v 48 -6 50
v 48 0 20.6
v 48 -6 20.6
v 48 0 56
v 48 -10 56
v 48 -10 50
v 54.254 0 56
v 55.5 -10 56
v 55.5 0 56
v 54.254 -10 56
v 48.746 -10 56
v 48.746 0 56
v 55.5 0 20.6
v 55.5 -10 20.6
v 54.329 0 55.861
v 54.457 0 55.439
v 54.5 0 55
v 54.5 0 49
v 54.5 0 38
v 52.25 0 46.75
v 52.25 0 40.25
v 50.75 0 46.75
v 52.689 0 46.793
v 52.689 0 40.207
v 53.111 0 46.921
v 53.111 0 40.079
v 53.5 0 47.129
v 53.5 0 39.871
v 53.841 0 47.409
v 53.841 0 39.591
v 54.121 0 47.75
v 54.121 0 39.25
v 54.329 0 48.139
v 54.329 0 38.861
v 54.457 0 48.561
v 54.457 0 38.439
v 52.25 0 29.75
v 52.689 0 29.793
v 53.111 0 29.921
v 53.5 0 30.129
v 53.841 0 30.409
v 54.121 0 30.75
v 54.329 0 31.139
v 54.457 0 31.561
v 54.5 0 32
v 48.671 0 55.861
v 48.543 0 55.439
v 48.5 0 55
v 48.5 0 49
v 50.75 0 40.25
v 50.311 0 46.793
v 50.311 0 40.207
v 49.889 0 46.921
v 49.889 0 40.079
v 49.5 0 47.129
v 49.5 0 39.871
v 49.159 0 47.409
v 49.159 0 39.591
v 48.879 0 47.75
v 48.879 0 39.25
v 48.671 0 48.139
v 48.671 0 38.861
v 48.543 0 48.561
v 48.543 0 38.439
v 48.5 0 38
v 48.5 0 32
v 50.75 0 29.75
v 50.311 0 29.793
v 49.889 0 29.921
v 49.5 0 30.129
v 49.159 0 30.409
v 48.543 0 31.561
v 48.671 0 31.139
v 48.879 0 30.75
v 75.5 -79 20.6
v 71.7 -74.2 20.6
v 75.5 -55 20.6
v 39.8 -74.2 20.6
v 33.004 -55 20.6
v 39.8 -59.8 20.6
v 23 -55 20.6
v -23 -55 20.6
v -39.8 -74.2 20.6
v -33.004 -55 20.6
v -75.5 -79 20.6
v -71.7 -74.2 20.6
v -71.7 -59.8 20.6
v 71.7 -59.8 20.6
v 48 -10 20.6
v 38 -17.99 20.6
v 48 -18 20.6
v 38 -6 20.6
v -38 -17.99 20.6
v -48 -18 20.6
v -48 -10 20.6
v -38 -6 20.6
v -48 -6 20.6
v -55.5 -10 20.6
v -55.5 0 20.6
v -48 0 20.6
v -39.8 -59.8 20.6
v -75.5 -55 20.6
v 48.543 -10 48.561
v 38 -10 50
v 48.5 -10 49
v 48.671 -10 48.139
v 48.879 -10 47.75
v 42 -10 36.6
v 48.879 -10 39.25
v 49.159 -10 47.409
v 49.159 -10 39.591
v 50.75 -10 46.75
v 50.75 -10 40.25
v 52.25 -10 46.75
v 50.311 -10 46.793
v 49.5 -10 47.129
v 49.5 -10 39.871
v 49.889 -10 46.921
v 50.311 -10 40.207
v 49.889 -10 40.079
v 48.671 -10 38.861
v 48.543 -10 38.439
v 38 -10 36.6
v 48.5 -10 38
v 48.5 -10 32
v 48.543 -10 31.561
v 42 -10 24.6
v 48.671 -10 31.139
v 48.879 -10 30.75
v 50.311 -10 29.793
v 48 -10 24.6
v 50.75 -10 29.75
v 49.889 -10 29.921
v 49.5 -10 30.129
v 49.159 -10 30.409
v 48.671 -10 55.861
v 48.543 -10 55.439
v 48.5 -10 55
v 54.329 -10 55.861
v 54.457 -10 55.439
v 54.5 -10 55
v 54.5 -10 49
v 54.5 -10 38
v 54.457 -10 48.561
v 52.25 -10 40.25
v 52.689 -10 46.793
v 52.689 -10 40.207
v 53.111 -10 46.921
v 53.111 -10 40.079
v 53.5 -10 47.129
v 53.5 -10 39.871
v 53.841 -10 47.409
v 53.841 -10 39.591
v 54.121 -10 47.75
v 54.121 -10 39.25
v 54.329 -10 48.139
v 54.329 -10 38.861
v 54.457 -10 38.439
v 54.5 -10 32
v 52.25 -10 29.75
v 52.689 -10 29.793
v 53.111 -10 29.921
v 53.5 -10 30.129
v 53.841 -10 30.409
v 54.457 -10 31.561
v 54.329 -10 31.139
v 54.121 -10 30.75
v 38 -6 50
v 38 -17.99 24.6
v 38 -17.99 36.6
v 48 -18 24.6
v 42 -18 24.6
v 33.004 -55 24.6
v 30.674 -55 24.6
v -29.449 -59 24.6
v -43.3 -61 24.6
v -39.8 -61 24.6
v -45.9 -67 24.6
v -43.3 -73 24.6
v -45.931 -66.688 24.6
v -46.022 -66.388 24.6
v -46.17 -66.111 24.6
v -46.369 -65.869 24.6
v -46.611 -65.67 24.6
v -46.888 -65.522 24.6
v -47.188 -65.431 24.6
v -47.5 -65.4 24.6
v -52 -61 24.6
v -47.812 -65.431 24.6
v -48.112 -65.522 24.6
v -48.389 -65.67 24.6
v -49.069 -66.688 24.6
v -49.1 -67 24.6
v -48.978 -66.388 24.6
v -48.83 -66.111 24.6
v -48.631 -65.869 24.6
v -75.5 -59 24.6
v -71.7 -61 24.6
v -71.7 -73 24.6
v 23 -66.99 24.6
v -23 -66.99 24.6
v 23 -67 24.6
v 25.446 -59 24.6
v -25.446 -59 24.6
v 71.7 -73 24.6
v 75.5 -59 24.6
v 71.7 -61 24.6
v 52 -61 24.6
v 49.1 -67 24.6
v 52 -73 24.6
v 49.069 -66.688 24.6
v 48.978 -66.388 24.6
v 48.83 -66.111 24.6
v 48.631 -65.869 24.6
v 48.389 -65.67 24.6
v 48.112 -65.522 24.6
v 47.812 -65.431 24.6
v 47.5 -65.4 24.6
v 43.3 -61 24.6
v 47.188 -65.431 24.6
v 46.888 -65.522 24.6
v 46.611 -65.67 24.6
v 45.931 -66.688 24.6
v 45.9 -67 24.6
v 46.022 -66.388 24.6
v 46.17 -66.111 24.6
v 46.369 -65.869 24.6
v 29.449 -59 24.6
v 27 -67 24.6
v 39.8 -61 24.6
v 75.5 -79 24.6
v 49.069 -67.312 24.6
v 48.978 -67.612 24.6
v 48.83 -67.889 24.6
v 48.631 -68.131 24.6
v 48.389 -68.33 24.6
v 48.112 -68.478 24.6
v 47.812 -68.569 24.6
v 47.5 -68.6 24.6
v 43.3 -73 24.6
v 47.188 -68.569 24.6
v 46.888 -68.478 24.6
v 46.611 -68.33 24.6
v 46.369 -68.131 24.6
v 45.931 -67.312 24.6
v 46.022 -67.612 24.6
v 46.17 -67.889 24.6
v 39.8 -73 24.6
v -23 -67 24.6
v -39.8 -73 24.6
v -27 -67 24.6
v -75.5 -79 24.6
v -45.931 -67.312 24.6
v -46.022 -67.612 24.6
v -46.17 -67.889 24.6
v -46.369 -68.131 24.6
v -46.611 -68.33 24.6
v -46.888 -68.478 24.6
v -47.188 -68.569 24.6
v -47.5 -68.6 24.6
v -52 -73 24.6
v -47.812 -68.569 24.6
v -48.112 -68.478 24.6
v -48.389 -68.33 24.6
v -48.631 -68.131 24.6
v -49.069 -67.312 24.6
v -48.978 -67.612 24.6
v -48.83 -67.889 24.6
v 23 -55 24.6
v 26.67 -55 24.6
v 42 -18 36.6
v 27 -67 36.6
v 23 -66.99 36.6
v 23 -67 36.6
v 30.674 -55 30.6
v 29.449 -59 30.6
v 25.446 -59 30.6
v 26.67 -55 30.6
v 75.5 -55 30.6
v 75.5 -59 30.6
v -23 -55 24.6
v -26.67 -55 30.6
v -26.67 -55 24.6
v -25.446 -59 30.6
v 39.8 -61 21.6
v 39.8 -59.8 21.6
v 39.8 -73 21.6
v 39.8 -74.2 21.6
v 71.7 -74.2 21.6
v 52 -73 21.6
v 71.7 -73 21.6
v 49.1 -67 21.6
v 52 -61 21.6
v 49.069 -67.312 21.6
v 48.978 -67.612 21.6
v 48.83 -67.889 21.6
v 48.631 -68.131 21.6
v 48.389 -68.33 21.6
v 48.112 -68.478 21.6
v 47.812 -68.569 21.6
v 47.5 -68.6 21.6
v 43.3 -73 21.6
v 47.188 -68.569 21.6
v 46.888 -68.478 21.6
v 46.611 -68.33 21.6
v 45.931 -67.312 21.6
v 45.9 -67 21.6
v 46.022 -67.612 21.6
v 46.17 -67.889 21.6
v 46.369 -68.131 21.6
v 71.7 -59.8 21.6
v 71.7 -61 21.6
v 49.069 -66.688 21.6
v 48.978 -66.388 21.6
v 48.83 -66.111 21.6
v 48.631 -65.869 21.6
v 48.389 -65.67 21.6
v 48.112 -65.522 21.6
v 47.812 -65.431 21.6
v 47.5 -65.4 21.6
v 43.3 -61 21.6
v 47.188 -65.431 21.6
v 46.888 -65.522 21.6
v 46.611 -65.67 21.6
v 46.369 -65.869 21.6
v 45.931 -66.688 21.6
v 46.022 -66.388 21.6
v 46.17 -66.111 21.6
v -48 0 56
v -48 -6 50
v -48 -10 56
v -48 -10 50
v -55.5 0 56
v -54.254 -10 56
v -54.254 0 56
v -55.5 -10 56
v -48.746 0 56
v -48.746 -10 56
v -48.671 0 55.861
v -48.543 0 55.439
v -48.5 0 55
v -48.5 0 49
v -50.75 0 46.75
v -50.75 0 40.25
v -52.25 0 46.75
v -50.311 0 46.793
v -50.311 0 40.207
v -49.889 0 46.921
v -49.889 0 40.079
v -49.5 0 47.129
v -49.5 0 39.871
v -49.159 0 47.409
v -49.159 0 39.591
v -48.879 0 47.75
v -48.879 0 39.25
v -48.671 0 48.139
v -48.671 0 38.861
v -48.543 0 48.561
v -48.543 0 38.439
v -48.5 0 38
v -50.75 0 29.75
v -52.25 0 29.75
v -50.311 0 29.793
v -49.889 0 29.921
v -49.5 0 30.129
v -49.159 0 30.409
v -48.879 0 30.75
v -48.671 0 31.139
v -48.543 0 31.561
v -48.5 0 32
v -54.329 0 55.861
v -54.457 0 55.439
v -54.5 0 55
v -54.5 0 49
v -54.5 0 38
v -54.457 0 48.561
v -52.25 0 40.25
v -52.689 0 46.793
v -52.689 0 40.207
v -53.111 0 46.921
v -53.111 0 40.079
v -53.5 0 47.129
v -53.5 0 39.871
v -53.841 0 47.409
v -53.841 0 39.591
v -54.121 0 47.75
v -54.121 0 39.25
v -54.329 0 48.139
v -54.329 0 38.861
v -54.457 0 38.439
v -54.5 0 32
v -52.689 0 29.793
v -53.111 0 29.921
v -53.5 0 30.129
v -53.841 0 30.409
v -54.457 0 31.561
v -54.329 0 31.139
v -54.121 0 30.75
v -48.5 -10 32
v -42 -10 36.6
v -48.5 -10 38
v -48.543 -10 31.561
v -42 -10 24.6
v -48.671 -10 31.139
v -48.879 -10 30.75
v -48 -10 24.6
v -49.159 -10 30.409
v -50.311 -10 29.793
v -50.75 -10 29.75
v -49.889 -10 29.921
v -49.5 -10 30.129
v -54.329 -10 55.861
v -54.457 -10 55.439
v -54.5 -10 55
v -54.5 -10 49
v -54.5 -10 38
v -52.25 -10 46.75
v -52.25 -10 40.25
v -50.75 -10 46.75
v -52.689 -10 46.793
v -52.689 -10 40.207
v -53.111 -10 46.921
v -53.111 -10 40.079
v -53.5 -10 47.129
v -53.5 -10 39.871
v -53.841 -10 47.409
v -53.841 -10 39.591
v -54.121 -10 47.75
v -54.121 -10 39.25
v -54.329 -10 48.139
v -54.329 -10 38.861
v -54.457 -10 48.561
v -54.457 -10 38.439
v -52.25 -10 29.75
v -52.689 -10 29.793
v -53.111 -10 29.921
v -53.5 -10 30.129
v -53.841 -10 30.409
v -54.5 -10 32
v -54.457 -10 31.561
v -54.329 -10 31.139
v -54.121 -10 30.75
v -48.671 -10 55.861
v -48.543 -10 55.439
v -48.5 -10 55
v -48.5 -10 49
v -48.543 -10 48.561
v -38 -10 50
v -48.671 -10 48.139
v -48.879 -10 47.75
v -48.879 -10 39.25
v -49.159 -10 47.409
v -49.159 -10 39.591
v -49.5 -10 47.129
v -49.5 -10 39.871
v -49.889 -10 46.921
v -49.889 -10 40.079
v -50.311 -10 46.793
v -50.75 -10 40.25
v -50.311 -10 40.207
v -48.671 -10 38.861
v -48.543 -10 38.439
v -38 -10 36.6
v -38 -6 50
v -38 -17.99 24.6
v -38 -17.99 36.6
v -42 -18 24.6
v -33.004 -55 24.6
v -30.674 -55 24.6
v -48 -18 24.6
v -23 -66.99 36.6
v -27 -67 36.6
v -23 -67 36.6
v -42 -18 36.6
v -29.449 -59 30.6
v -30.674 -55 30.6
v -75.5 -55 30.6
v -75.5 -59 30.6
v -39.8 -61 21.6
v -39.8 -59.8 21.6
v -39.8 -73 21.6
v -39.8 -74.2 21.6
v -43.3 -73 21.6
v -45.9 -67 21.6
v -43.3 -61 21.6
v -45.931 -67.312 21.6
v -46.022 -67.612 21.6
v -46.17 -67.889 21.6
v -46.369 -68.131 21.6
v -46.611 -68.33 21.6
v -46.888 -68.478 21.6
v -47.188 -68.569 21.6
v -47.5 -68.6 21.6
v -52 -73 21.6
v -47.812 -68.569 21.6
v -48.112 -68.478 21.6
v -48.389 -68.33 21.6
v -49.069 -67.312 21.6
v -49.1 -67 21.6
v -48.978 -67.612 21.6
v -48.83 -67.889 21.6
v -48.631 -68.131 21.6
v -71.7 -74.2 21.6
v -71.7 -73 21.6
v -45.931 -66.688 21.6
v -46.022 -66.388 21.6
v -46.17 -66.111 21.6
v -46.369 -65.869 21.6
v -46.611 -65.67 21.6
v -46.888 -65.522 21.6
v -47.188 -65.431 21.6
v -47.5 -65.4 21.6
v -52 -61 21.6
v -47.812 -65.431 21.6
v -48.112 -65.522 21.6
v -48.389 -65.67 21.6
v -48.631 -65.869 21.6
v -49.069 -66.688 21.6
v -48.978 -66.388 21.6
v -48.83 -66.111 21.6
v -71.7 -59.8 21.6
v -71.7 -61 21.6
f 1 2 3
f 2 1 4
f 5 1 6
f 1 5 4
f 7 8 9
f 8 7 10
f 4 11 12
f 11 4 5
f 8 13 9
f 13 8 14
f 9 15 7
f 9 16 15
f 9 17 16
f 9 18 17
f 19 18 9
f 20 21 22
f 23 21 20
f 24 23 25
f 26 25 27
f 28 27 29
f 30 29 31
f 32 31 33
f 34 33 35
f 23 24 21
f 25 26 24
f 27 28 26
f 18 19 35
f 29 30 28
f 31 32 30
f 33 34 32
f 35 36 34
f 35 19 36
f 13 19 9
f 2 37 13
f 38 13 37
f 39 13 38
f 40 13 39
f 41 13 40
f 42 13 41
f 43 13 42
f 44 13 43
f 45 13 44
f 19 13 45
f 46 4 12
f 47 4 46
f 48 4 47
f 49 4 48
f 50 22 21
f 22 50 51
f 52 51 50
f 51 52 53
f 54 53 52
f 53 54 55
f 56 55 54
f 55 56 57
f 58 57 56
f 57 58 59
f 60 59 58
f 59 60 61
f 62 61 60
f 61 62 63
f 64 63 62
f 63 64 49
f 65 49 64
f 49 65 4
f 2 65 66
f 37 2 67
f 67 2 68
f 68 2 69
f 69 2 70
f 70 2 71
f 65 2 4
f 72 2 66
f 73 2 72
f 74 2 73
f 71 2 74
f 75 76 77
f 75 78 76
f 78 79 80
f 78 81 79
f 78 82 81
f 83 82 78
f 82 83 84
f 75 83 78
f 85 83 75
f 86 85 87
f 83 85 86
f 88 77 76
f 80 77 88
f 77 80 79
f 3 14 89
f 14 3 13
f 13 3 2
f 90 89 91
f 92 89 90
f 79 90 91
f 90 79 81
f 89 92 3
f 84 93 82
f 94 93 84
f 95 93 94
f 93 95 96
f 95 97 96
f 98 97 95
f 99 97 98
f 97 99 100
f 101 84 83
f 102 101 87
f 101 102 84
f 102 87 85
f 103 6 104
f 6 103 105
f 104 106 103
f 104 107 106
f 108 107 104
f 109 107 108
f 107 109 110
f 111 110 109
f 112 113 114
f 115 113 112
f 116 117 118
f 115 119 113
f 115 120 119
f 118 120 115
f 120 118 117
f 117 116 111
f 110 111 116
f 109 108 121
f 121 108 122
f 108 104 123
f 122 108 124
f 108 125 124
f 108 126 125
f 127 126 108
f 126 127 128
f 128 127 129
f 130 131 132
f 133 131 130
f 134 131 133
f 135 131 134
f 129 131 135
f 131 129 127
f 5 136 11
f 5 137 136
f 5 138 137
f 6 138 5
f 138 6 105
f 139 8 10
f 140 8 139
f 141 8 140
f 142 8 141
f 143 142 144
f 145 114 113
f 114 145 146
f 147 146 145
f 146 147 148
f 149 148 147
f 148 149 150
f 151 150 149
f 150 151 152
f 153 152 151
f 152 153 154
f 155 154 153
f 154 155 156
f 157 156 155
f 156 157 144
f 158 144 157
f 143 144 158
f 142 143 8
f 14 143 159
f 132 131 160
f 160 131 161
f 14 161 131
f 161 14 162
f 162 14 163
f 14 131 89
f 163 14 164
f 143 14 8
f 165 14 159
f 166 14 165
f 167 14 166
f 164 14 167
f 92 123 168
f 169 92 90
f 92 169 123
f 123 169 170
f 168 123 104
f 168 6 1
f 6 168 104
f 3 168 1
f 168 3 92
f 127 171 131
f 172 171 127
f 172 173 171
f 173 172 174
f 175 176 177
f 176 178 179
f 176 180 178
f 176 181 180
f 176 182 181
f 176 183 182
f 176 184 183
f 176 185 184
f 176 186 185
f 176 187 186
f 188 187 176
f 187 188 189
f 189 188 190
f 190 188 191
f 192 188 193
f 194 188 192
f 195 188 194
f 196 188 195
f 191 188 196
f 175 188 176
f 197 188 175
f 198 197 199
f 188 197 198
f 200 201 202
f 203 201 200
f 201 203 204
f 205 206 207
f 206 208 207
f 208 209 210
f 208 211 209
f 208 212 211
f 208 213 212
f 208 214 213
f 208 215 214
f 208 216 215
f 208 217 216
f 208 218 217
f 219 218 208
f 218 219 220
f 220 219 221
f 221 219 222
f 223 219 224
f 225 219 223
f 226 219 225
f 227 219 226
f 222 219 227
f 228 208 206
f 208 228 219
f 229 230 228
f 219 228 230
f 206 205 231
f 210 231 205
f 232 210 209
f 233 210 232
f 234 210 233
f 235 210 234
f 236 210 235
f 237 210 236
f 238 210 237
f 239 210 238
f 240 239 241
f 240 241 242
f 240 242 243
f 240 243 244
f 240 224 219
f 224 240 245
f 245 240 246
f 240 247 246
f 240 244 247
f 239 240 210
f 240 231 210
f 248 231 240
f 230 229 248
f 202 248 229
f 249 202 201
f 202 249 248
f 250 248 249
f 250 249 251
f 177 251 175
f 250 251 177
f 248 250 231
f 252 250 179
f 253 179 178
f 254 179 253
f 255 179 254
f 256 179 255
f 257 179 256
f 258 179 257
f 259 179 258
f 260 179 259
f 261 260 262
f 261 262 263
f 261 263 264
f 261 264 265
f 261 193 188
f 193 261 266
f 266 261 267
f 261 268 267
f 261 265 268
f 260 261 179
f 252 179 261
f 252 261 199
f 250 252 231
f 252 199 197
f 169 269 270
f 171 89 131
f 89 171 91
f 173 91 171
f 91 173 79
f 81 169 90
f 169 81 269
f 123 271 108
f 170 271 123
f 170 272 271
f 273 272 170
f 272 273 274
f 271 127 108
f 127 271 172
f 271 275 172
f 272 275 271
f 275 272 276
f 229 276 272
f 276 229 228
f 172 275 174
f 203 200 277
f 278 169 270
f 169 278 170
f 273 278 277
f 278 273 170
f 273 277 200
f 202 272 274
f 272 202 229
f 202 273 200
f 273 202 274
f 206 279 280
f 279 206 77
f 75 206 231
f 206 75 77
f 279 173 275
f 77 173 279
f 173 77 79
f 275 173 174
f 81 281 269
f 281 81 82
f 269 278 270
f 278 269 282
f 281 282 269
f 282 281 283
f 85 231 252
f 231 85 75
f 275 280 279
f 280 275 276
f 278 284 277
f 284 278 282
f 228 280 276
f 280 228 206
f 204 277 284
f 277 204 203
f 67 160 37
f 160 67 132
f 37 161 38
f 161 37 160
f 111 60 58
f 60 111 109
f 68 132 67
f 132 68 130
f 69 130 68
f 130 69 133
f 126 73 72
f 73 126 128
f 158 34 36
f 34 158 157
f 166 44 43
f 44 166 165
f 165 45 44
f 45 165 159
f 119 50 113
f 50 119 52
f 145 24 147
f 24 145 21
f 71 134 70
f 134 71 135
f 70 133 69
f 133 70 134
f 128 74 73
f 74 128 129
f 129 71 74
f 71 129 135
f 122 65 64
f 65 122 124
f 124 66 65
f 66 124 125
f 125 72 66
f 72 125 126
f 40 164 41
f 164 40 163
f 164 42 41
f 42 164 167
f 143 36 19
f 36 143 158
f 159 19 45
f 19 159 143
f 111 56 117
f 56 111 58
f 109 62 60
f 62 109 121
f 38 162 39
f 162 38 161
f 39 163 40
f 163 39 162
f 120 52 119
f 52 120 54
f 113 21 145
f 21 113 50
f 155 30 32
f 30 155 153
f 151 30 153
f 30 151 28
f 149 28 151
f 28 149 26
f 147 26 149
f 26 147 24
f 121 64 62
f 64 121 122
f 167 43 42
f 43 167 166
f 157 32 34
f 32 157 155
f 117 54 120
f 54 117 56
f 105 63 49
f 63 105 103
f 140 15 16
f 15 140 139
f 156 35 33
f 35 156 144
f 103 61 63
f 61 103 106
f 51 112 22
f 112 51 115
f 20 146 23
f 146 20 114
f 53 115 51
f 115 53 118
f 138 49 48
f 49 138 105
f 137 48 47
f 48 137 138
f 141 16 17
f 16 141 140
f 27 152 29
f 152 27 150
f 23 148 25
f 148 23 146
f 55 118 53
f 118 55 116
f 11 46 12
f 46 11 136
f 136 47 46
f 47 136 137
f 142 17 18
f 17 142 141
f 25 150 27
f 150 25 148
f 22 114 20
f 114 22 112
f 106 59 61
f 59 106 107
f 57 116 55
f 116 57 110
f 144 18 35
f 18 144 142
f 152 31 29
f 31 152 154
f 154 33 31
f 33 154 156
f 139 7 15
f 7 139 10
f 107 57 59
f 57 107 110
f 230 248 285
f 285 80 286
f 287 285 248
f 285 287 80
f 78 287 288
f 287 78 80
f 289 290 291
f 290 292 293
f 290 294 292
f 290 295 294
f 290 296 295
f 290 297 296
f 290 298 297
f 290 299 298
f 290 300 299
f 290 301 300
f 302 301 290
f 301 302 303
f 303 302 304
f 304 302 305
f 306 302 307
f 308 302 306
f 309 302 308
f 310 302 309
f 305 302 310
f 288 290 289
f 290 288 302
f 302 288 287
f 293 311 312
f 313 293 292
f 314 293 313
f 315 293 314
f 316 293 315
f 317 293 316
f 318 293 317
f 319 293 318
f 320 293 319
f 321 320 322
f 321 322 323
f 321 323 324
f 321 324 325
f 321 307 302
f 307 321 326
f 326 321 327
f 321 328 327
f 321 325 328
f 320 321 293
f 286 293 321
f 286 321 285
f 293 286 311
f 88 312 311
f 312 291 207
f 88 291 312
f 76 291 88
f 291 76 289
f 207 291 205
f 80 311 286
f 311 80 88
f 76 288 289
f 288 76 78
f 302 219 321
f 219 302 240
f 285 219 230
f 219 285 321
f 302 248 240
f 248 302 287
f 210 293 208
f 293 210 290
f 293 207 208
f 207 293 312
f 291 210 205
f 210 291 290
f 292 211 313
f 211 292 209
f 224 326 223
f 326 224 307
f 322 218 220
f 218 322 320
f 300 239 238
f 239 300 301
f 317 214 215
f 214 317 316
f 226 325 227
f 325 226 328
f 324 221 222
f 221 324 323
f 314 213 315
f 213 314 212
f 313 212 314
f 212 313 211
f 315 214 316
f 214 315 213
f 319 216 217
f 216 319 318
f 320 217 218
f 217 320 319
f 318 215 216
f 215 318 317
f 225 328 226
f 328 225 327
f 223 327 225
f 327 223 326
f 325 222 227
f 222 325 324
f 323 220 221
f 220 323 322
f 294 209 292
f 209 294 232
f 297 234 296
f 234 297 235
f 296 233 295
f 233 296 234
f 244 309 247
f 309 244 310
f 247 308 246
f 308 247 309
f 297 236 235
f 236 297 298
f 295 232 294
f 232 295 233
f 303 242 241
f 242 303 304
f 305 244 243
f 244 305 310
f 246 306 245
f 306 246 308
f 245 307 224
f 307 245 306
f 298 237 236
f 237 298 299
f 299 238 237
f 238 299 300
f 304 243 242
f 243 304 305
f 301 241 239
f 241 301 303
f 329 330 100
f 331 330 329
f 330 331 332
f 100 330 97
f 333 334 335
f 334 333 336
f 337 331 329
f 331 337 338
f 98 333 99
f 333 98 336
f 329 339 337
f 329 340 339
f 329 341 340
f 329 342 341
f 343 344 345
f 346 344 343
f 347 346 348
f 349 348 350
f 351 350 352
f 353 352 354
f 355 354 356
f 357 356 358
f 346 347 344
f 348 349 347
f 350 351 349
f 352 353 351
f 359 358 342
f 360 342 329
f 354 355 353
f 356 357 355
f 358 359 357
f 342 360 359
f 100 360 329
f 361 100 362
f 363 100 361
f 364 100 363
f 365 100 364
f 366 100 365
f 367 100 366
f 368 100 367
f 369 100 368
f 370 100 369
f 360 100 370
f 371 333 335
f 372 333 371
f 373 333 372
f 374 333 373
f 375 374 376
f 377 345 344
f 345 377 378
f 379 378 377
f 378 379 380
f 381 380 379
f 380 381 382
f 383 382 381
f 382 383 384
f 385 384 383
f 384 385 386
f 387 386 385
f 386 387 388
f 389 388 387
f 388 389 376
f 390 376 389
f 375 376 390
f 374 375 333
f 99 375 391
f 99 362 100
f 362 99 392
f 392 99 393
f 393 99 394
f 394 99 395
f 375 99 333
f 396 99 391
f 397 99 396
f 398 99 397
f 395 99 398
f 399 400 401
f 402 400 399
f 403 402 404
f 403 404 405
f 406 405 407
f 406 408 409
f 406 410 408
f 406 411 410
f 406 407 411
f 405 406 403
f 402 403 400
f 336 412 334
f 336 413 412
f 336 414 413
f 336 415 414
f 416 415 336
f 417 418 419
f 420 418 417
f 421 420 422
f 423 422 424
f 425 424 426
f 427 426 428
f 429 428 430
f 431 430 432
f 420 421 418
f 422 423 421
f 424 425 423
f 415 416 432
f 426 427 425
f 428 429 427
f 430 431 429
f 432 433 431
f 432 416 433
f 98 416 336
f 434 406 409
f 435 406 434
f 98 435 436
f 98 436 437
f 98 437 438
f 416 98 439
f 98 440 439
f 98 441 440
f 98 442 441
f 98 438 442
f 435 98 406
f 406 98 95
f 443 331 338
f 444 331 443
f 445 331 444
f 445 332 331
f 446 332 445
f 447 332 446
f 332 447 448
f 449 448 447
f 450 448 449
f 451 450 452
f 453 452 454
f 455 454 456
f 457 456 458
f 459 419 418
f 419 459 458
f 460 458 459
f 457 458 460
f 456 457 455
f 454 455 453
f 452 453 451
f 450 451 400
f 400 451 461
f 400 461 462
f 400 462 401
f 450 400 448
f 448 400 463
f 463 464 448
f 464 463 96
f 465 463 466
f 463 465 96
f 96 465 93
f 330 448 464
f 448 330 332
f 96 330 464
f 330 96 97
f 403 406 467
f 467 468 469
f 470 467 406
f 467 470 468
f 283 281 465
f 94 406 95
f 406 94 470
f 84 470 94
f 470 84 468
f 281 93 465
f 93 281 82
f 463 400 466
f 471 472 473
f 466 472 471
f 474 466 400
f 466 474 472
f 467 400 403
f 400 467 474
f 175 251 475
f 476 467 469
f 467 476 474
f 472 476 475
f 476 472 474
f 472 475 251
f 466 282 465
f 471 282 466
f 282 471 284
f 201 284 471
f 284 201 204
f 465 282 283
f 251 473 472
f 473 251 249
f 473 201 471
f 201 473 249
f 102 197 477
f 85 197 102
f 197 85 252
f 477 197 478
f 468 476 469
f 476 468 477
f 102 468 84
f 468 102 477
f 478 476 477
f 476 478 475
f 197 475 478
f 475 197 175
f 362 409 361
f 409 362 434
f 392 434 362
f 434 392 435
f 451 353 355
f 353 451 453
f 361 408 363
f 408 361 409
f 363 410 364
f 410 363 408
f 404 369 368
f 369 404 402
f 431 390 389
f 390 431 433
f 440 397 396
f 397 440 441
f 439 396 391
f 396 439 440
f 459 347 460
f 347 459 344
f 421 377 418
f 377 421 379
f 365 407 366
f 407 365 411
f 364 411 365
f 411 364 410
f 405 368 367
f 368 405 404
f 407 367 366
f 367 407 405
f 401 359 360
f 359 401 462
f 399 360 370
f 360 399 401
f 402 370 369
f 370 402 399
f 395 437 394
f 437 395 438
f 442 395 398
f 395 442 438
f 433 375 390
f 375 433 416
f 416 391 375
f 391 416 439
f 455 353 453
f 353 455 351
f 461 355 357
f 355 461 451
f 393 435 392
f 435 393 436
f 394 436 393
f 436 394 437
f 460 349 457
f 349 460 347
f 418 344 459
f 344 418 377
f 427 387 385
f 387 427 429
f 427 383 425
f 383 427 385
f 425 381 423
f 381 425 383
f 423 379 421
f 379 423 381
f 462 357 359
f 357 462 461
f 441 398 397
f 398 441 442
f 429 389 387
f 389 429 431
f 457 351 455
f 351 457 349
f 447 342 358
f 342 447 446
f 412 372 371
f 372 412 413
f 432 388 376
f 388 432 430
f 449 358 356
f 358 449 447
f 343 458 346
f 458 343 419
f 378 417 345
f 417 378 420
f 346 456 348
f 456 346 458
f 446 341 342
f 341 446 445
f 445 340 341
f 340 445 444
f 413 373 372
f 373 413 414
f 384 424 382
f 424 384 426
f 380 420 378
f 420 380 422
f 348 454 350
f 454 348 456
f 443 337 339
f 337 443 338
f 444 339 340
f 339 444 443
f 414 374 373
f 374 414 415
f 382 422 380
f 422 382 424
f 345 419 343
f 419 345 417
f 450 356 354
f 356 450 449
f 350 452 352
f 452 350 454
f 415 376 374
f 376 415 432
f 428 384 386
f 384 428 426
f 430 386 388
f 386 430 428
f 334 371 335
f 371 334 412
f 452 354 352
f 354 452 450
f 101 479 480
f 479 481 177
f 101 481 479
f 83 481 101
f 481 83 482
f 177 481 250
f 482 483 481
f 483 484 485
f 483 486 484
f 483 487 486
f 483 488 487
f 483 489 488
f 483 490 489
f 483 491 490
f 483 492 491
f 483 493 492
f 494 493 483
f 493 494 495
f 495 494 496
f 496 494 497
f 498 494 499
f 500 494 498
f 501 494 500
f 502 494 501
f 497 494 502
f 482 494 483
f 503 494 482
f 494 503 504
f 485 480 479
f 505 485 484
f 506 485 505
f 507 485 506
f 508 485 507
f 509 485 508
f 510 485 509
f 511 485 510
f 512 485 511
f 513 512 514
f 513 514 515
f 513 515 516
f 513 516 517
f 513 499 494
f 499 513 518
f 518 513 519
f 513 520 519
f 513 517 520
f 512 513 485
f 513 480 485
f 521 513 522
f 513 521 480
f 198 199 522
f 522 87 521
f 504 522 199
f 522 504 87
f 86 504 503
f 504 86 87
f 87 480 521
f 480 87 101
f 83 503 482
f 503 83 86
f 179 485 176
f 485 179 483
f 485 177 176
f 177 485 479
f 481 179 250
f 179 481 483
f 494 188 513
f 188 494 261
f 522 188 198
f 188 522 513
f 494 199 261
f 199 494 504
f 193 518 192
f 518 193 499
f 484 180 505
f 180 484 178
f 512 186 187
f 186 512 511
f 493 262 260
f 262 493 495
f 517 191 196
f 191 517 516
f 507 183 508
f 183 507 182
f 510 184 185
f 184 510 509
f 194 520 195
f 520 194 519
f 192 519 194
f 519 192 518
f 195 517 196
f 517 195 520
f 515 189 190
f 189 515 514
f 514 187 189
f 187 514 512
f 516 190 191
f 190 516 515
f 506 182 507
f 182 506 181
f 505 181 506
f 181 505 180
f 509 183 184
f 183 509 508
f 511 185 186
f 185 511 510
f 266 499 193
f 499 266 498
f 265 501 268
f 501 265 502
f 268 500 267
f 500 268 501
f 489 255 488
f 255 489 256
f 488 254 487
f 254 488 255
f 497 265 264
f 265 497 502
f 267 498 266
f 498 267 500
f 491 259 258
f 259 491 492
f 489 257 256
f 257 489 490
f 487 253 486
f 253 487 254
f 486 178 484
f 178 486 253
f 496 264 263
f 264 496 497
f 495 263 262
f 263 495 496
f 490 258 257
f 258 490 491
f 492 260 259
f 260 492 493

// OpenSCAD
// Rear cliff bar: two HW-870 / TCRT5000 cliff sensors behind Grover's
// tracks, so reversing has the same stopping room as driving forward
// (2026-10-31). One printed part: bolts to the tapped M4 holes in the two
// tread beams' END faces (Enoch), stands 6 mm off them (the right motor
// plate sticks out ~4 mm past its tread beam end), steps inboard of the treads,
// runs back, and a crossbar carries the sensors behind each track's
// centreline.
//
// Geometry (Enoch, 10-31): rear axle 8 mm in from the tread beam ends, rearmost
// tread 30 mm behind them. The front pair sits ~75 mm ahead of the front
// axle, so the rear TCRT5000s sit 75 mm behind the rear axle = 67 mm behind
// the tread beam ends, ~37 mm past the tread. Faces 13 mm above the bench, like
// the front pair (edge-tested there 10-26).
//
// Sensor module: HW-870 per cliff-mount.scad (31.5 x 14, M3 hole 7.5 mm from
// the pin end, TCRT5000 ~4 mm from the other end, ~7 mm tall below the
// board). Board across the robot, TCRT5000 end OUTBOARD, pins inboard;
// component side up, flat against the frame's underside in a 1 mm locating
// pocket, M3 screw up through the frame; windows let the header joints and
// the pot/chip/LEDs/TCRT5000 leads stand up through it. Nothing hangs below
// the frame but the boards, so it prints flat with no supports.
//
// Frame: +y FORWARD, +x Grover's RIGHT, z up from the bench (right-handed:
// forward x up = right). Origin: centreline, at the tread beam ends' plane. The
// part is symmetric, so handedness cannot go wrong; the right side is the
// one next to the motor plate.
//
// End holes at 35 and 52 mm above the bench (Enoch, 10-31)
// (Makeblock 0824 on its side, top 56 mm; 36/52 had been assumed). The holes
// are slotted +/-3 mm vertically and +/-0.75 sideways.
//
// Render: openscad -o rear-cliff-bar.stl rear-cliff-bar.scad
// Print:  as rendered (frame flat on the bed, end blocks and ribs up), no
//         supports, no brim. Blue PETG (Grover parts).

// chassis
rail_in_x  = 95 / 2;          // tread beams' inside faces
rail_w     = 8;               // 0824 on its side
rail_cx    = rail_in_x + rail_w / 2;    // 51.5: end-hole column
hole_z     = [35, 52];        // measured (Enoch, 10-31)
rail_top   = 56;
standoff   = 6;               // clear of the right motor plate (~4 mm proud; 6 per Enoch)
track_cx   = (105 / 2 + 165 / 2) / 2;   // 67.5: track centreline
sensor_y   = -67;             // 75 mm behind the rear axle (8 mm in from the ends)

// sensor module (cliff-mount.scad)
pcb_l = 31.5;  pcb_w = 14;  pcb_t = 1.6;  pcb_hole_in = 7.5;  pcb_hole_d = 3.2;
tcrt_in = 4;   tcrt_h = 7;  
face_z  = 13;

// part
m4_hole  = 4.5;
slot_z   = 3;     // +/- vertical
slot_x   = 0.75;  // +/- sideways (keeps a wall outboard of the hole)
block_x0 = rail_in_x + 0.5;   // end block inboard edge: clear of the motor plate on the tread beam's inside face
block_x1 = rail_in_x + rail_w;   // stay inside the tread beam footprint: the sprocket and tread are outboard of it
end_t    = 4;     // end plate behind the standoff
frame_t  = 4;
pocket   = 1;     // PCB locating pocket in the frame's underside
pcb_top  = face_z + tcrt_h + pcb_t;    // 21.6
frame_z0 = pcb_top - pocket;            // frame underside, 20.6 - nothing below it but the boards
arm_x0   = 38;    // arms run back inboard of the treads
arm_x1   = block_x0;
arm_in   = 15;    // the arm's crossbar end sits this much further inboard (angled, 11-02)
arm_straight = 8; // straight run off the end plate before the angle
bar_w    = 24;    // crossbar, fore-aft (the PCB windows take 14 of it)
rib_t    = 4;
rib_h    = 12;    // ribs above the frame

pcb_x1 = track_cx + tcrt_in;      // TCRT5000 end (outboard)
pcb_x0 = pcb_x1 - pcb_l;          // pin end (inboard)
hole_x = pcb_x0 + pcb_hole_in;
bar_x  = pcb_x1 + 4;              // crossbar half-length
fit    = 0.4;

$fn = 32;

module half() {   // right half (x > 0); the part is mirrored onto the left
  difference() {
    union() {
      // end block: the standoff plus the end plate, tread beam-wide, frame to tread beam top
      translate([block_x0, -standoff - end_t, frame_z0]) cube([block_x1 - block_x0, standoff + end_t, rail_top - frame_z0]);
      // end plate widened inboard behind the standoff, where the arm joins
      translate([arm_x0, -standoff - end_t, frame_z0]) cube([block_x1 - arm_x0, end_t, rail_top - 6 - frame_z0]);
      // arm (frame) and its rib: leave the end plate just inboard of the tread
      // beam, then angle INWARD to meet the crossbar arm_in mm further inboard,
      // clear of the track where it wraps the rear sprocket (Enoch, 11-02)
      hull() {
        translate([arm_x0, -standoff - end_t - 0.01, frame_z0]) cube([arm_x1 - arm_x0, 0.01, frame_t]);
        translate([arm_x0, -standoff - end_t - arm_straight, frame_z0]) cube([arm_x1 - arm_x0, 0.01, frame_t]);
      }
      hull() {
        translate([arm_x0, -standoff - end_t - arm_straight, frame_z0]) cube([arm_x1 - arm_x0, 0.01, frame_t]);
        translate([arm_x0 - arm_in, sensor_y + bar_w / 2 - 0.01, frame_z0]) cube([arm_x1 - arm_x0, 0.01, frame_t]);
      }
      hull() {
        translate([arm_x0, -standoff - end_t - 0.01, frame_z0]) cube([rib_t, 0.01, frame_t + rib_h]);
        translate([arm_x0, -standoff - end_t - arm_straight, frame_z0]) cube([rib_t, 0.01, frame_t + rib_h]);
      }
      hull() {
        translate([arm_x0, -standoff - end_t - arm_straight, frame_z0]) cube([rib_t, 0.01, frame_t + rib_h]);
        translate([arm_x0 - arm_in, sensor_y, frame_z0]) cube([rib_t, 0.01, frame_t + rib_h]);
      }
      // crossbar and its rib along the front edge
      translate([0, sensor_y - bar_w / 2, frame_z0]) cube([bar_x, bar_w, frame_t]);
      translate([0, sensor_y + bar_w / 2 - rib_t, frame_z0]) cube([bar_x, rib_t, frame_t + rib_h / 2]);
    }
    // end-hole slots (vertical +/-slot_z, sideways +/-slot_x), through the block
    for (z = hole_z) hull() for (dx = [-slot_x, slot_x], dz = [-slot_z, slot_z])
      translate([rail_cx + dx, 1, z + dz]) rotate([90, 0, 0]) cylinder(d = m4_hole, h = standoff + end_t + 2);
    // PCB pocket in the underside: the board's component side sits flat against its ceiling
    translate([pcb_x0 - fit / 2, sensor_y - (pcb_w + fit) / 2, frame_z0 - 1]) cube([pcb_l + fit, pcb_w + fit, pocket + 1]);
    // windows for what stands up off the board: header joints at the pin end,
    // pot / chip / LEDs / TCRT5000 leads from 12 mm on; a land around the screw
    translate([pcb_x0 - fit / 2, sensor_y - (pcb_w - 2) / 2, frame_z0 - 1]) cube([3.5, pcb_w - 2, frame_t + 2]);
    translate([pcb_x0 + 12, sensor_y - (pcb_w - 2) / 2, frame_z0 - 1]) cube([pcb_l - 12 + fit / 2, pcb_w - 2, frame_t + 2]);
    // M3 sensor screw
    translate([hole_x, sensor_y, frame_z0 - 1]) cylinder(d = pcb_hole_d, h = frame_t + 2);
  }
}

module ghosts() {
  for (s = [-1, 1]) {
    // HW-870 boards
    %translate([s > 0 ? pcb_x0 : -pcb_x1, sensor_y - pcb_w / 2, pcb_top - pcb_t]) cube([pcb_l, pcb_w, pcb_t]);
    // tread beam ends and the track wrap (rearmost tread 30 mm behind the tread beam ends)
    %translate([s * rail_cx - rail_w / 2, 0, rail_top - 24]) cube([rail_w, 40, 24]);
    %translate([s * (rail_in_x + rail_w + 1 + 13), 8, 38]) rotate([0, 90, 0]) cylinder(r = 38, h = 26, center = true);   // outboard of the tread beam
  }
}

half(); mirror([1, 0, 0]) half();
ghosts();
